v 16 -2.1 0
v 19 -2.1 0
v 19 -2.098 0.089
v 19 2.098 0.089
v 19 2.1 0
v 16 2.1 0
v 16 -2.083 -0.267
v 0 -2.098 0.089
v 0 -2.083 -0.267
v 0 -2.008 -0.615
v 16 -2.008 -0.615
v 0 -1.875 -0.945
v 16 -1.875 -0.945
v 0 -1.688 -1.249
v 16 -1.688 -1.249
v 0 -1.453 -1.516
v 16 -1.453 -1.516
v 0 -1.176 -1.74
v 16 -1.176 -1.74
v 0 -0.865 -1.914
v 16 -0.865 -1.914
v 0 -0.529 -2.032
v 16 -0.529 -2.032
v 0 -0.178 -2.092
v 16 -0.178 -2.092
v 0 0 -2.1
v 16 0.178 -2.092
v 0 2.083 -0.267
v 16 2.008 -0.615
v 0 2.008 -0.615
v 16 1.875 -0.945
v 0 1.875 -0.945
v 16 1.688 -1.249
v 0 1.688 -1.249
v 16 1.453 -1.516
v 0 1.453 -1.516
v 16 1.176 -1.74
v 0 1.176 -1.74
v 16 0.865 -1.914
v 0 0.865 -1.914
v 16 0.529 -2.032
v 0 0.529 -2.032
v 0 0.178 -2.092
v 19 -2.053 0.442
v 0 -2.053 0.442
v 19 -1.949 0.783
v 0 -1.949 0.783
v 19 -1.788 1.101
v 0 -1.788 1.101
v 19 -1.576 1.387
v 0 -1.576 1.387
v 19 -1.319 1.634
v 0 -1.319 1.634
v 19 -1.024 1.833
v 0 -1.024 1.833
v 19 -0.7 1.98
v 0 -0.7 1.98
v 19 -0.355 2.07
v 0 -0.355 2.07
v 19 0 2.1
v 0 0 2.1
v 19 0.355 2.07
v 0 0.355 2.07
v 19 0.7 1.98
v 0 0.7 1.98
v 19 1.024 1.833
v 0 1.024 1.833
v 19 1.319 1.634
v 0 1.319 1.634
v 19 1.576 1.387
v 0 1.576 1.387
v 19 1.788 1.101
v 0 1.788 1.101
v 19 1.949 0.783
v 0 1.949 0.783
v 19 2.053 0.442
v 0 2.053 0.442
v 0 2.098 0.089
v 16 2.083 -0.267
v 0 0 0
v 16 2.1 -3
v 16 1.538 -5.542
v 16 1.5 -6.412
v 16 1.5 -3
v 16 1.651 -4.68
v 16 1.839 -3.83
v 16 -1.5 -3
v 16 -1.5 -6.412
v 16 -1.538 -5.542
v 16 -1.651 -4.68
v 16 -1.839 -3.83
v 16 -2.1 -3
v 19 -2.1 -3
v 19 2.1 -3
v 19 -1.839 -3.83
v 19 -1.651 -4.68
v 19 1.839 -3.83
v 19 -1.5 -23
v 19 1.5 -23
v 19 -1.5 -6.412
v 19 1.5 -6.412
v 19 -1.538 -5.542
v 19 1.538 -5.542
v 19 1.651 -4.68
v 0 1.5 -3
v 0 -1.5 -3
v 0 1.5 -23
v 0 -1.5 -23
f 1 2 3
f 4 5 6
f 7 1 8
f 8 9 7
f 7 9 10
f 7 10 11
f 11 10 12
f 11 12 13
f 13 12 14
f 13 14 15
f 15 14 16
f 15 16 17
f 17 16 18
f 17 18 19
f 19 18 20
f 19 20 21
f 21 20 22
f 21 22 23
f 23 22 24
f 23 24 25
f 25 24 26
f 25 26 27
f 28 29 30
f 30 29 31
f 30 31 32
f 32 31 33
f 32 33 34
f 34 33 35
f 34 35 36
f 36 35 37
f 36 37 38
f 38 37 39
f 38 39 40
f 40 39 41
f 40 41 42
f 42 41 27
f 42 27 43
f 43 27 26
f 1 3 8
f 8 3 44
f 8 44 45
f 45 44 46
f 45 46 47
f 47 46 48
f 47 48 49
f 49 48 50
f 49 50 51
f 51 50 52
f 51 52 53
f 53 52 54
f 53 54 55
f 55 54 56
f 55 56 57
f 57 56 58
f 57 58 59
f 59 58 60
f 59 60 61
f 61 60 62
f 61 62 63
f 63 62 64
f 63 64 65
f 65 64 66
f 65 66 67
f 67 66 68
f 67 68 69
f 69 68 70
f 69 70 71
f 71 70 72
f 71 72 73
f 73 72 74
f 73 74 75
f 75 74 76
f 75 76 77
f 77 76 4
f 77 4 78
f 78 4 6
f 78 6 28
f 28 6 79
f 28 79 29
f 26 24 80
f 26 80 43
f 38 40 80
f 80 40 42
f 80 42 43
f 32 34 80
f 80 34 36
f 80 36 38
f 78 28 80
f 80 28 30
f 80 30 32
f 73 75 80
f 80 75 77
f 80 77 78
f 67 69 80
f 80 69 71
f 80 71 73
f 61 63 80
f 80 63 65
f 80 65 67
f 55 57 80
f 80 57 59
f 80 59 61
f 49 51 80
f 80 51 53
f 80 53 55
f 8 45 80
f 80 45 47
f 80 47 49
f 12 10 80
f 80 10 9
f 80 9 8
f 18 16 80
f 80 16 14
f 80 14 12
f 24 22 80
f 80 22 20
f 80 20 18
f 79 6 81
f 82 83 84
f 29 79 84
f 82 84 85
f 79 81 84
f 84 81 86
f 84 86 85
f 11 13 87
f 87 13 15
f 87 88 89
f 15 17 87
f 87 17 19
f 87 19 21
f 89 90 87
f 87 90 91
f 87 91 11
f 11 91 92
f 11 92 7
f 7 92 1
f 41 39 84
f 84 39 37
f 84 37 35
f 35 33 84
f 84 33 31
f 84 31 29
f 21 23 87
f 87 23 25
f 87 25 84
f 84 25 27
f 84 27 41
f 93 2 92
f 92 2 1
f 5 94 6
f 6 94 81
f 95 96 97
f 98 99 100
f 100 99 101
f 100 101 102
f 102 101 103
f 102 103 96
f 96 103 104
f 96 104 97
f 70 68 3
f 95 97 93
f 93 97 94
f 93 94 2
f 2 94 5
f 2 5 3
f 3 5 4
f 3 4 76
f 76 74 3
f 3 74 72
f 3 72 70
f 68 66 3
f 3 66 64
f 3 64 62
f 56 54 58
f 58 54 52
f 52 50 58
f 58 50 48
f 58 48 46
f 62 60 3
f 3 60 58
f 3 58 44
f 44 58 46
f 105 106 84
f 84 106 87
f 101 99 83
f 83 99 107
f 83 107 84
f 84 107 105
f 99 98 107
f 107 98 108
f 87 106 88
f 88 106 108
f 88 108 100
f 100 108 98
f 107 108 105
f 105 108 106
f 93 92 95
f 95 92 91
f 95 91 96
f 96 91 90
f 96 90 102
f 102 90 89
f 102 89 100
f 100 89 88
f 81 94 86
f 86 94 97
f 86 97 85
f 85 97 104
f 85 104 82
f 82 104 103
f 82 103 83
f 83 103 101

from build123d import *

# Parameters (mm, degrees)
SKETCH2_R           = 2.1
BOSS_EXTRUDE1_DEPTH = 16
SKETCH3_R           = 2.1
BOSS_EXTRUDE2_DEPTH = 3
BOSS_EXTRUDE3_REACH = 21.35
SKETCH4_W           = 20
SKETCH4_H           = 3
FILLET1_R           = 10


with BuildPart() as part:
    # Sketch2 → Boss-Extrude1 (new body)
    with BuildSketch(Plane(origin=(0, 0, 0), x_dir=(0, 0, -1), z_dir=(1, 0, 0))):
        Circle(SKETCH2_R)
    extrude(amount=BOSS_EXTRUDE1_DEPTH)

    # Sketch3 → Boss-Extrude2 (add)
    with BuildSketch(Plane(origin=(16, 0, 0), x_dir=(0, 0, -1), z_dir=(1, 0, 0))):
        with Locations(Location((0, 0, 0), (0, 0, 270))):
            Circle(SKETCH3_R)
        with BuildLine():
            Line((3, 2.1), (0, 2.1))
            ThreePointArc((0, 2.1), (1.48492424, 1.48492424), (2.1, 0))
            ThreePointArc((2.1, 0), (1.48492424, -1.48492424), (0, -2.1))
            Line((0, -2.1), (3, -2.1))
            Line((3, -2.1), (3, 2.1))
        make_face()
    extrude(amount=BOSS_EXTRUDE2_DEPTH)

    # Boss-Extrude3: up to this face of the body (flat: up to its plane)
    boss_extrude3_end = Plane(part.part.faces().sort_by_distance((0, 0, 0))[0])
    # Sketch4 → Boss-Extrude3 (add, up to the picked face)
    with BuildSketch(Plane(origin=(19, 0, 0), x_dir=(0, 0, -1), z_dir=(1, 0, 0)), mode=Mode.PRIVATE) as boss_extrude3_sk1:
        with Locations((13, 0)):
            Rectangle(SKETCH4_W, SKETCH4_H)
    boss_extrude3_tool1 = split(extrude(boss_extrude3_sk1.sketch, amount=-BOSS_EXTRUDE3_REACH, mode=Mode.PRIVATE), bisect_by=boss_extrude3_end, keep=Keep.BOTH, mode=Mode.PRIVATE)
    add(boss_extrude3_tool1.solids().sort_by(Axis((19, 0, -13), (-1, 0, 0)))[0])

    # Fillet1
    # the kernel refuses this fillet: 10 mm, written as the material it adds along each edge
    with BuildSketch(Plane(origin=(19, -1.5, -3), x_dir=(0, -1, 0), z_dir=(-1, 0, 0))) as fillet1_piece_1:
        with BuildLine():
            CenterArc((10, -3.411744422), FILLET1_R, 160.051556411, 19.948443589)
            Line((0, -3.411744422), (0, 0))
            Line((0, 0), (0.6, 0))
        make_face()
    extrude(amount=3)
    with BuildSketch(Plane(origin=(19, 1.5, -3), x_dir=(0, 1, 0), z_dir=(-1, 0, 0))) as fillet1_piece_2:
        with BuildLine():
            CenterArc((10, 3.411744422), FILLET1_R, 180, 19.948443589)
            Line((0, 3.411744422), (0, 0))
            Line((0, 0), (0.6, 0))
        make_face()
    extrude(amount=3)


solid = part.part
